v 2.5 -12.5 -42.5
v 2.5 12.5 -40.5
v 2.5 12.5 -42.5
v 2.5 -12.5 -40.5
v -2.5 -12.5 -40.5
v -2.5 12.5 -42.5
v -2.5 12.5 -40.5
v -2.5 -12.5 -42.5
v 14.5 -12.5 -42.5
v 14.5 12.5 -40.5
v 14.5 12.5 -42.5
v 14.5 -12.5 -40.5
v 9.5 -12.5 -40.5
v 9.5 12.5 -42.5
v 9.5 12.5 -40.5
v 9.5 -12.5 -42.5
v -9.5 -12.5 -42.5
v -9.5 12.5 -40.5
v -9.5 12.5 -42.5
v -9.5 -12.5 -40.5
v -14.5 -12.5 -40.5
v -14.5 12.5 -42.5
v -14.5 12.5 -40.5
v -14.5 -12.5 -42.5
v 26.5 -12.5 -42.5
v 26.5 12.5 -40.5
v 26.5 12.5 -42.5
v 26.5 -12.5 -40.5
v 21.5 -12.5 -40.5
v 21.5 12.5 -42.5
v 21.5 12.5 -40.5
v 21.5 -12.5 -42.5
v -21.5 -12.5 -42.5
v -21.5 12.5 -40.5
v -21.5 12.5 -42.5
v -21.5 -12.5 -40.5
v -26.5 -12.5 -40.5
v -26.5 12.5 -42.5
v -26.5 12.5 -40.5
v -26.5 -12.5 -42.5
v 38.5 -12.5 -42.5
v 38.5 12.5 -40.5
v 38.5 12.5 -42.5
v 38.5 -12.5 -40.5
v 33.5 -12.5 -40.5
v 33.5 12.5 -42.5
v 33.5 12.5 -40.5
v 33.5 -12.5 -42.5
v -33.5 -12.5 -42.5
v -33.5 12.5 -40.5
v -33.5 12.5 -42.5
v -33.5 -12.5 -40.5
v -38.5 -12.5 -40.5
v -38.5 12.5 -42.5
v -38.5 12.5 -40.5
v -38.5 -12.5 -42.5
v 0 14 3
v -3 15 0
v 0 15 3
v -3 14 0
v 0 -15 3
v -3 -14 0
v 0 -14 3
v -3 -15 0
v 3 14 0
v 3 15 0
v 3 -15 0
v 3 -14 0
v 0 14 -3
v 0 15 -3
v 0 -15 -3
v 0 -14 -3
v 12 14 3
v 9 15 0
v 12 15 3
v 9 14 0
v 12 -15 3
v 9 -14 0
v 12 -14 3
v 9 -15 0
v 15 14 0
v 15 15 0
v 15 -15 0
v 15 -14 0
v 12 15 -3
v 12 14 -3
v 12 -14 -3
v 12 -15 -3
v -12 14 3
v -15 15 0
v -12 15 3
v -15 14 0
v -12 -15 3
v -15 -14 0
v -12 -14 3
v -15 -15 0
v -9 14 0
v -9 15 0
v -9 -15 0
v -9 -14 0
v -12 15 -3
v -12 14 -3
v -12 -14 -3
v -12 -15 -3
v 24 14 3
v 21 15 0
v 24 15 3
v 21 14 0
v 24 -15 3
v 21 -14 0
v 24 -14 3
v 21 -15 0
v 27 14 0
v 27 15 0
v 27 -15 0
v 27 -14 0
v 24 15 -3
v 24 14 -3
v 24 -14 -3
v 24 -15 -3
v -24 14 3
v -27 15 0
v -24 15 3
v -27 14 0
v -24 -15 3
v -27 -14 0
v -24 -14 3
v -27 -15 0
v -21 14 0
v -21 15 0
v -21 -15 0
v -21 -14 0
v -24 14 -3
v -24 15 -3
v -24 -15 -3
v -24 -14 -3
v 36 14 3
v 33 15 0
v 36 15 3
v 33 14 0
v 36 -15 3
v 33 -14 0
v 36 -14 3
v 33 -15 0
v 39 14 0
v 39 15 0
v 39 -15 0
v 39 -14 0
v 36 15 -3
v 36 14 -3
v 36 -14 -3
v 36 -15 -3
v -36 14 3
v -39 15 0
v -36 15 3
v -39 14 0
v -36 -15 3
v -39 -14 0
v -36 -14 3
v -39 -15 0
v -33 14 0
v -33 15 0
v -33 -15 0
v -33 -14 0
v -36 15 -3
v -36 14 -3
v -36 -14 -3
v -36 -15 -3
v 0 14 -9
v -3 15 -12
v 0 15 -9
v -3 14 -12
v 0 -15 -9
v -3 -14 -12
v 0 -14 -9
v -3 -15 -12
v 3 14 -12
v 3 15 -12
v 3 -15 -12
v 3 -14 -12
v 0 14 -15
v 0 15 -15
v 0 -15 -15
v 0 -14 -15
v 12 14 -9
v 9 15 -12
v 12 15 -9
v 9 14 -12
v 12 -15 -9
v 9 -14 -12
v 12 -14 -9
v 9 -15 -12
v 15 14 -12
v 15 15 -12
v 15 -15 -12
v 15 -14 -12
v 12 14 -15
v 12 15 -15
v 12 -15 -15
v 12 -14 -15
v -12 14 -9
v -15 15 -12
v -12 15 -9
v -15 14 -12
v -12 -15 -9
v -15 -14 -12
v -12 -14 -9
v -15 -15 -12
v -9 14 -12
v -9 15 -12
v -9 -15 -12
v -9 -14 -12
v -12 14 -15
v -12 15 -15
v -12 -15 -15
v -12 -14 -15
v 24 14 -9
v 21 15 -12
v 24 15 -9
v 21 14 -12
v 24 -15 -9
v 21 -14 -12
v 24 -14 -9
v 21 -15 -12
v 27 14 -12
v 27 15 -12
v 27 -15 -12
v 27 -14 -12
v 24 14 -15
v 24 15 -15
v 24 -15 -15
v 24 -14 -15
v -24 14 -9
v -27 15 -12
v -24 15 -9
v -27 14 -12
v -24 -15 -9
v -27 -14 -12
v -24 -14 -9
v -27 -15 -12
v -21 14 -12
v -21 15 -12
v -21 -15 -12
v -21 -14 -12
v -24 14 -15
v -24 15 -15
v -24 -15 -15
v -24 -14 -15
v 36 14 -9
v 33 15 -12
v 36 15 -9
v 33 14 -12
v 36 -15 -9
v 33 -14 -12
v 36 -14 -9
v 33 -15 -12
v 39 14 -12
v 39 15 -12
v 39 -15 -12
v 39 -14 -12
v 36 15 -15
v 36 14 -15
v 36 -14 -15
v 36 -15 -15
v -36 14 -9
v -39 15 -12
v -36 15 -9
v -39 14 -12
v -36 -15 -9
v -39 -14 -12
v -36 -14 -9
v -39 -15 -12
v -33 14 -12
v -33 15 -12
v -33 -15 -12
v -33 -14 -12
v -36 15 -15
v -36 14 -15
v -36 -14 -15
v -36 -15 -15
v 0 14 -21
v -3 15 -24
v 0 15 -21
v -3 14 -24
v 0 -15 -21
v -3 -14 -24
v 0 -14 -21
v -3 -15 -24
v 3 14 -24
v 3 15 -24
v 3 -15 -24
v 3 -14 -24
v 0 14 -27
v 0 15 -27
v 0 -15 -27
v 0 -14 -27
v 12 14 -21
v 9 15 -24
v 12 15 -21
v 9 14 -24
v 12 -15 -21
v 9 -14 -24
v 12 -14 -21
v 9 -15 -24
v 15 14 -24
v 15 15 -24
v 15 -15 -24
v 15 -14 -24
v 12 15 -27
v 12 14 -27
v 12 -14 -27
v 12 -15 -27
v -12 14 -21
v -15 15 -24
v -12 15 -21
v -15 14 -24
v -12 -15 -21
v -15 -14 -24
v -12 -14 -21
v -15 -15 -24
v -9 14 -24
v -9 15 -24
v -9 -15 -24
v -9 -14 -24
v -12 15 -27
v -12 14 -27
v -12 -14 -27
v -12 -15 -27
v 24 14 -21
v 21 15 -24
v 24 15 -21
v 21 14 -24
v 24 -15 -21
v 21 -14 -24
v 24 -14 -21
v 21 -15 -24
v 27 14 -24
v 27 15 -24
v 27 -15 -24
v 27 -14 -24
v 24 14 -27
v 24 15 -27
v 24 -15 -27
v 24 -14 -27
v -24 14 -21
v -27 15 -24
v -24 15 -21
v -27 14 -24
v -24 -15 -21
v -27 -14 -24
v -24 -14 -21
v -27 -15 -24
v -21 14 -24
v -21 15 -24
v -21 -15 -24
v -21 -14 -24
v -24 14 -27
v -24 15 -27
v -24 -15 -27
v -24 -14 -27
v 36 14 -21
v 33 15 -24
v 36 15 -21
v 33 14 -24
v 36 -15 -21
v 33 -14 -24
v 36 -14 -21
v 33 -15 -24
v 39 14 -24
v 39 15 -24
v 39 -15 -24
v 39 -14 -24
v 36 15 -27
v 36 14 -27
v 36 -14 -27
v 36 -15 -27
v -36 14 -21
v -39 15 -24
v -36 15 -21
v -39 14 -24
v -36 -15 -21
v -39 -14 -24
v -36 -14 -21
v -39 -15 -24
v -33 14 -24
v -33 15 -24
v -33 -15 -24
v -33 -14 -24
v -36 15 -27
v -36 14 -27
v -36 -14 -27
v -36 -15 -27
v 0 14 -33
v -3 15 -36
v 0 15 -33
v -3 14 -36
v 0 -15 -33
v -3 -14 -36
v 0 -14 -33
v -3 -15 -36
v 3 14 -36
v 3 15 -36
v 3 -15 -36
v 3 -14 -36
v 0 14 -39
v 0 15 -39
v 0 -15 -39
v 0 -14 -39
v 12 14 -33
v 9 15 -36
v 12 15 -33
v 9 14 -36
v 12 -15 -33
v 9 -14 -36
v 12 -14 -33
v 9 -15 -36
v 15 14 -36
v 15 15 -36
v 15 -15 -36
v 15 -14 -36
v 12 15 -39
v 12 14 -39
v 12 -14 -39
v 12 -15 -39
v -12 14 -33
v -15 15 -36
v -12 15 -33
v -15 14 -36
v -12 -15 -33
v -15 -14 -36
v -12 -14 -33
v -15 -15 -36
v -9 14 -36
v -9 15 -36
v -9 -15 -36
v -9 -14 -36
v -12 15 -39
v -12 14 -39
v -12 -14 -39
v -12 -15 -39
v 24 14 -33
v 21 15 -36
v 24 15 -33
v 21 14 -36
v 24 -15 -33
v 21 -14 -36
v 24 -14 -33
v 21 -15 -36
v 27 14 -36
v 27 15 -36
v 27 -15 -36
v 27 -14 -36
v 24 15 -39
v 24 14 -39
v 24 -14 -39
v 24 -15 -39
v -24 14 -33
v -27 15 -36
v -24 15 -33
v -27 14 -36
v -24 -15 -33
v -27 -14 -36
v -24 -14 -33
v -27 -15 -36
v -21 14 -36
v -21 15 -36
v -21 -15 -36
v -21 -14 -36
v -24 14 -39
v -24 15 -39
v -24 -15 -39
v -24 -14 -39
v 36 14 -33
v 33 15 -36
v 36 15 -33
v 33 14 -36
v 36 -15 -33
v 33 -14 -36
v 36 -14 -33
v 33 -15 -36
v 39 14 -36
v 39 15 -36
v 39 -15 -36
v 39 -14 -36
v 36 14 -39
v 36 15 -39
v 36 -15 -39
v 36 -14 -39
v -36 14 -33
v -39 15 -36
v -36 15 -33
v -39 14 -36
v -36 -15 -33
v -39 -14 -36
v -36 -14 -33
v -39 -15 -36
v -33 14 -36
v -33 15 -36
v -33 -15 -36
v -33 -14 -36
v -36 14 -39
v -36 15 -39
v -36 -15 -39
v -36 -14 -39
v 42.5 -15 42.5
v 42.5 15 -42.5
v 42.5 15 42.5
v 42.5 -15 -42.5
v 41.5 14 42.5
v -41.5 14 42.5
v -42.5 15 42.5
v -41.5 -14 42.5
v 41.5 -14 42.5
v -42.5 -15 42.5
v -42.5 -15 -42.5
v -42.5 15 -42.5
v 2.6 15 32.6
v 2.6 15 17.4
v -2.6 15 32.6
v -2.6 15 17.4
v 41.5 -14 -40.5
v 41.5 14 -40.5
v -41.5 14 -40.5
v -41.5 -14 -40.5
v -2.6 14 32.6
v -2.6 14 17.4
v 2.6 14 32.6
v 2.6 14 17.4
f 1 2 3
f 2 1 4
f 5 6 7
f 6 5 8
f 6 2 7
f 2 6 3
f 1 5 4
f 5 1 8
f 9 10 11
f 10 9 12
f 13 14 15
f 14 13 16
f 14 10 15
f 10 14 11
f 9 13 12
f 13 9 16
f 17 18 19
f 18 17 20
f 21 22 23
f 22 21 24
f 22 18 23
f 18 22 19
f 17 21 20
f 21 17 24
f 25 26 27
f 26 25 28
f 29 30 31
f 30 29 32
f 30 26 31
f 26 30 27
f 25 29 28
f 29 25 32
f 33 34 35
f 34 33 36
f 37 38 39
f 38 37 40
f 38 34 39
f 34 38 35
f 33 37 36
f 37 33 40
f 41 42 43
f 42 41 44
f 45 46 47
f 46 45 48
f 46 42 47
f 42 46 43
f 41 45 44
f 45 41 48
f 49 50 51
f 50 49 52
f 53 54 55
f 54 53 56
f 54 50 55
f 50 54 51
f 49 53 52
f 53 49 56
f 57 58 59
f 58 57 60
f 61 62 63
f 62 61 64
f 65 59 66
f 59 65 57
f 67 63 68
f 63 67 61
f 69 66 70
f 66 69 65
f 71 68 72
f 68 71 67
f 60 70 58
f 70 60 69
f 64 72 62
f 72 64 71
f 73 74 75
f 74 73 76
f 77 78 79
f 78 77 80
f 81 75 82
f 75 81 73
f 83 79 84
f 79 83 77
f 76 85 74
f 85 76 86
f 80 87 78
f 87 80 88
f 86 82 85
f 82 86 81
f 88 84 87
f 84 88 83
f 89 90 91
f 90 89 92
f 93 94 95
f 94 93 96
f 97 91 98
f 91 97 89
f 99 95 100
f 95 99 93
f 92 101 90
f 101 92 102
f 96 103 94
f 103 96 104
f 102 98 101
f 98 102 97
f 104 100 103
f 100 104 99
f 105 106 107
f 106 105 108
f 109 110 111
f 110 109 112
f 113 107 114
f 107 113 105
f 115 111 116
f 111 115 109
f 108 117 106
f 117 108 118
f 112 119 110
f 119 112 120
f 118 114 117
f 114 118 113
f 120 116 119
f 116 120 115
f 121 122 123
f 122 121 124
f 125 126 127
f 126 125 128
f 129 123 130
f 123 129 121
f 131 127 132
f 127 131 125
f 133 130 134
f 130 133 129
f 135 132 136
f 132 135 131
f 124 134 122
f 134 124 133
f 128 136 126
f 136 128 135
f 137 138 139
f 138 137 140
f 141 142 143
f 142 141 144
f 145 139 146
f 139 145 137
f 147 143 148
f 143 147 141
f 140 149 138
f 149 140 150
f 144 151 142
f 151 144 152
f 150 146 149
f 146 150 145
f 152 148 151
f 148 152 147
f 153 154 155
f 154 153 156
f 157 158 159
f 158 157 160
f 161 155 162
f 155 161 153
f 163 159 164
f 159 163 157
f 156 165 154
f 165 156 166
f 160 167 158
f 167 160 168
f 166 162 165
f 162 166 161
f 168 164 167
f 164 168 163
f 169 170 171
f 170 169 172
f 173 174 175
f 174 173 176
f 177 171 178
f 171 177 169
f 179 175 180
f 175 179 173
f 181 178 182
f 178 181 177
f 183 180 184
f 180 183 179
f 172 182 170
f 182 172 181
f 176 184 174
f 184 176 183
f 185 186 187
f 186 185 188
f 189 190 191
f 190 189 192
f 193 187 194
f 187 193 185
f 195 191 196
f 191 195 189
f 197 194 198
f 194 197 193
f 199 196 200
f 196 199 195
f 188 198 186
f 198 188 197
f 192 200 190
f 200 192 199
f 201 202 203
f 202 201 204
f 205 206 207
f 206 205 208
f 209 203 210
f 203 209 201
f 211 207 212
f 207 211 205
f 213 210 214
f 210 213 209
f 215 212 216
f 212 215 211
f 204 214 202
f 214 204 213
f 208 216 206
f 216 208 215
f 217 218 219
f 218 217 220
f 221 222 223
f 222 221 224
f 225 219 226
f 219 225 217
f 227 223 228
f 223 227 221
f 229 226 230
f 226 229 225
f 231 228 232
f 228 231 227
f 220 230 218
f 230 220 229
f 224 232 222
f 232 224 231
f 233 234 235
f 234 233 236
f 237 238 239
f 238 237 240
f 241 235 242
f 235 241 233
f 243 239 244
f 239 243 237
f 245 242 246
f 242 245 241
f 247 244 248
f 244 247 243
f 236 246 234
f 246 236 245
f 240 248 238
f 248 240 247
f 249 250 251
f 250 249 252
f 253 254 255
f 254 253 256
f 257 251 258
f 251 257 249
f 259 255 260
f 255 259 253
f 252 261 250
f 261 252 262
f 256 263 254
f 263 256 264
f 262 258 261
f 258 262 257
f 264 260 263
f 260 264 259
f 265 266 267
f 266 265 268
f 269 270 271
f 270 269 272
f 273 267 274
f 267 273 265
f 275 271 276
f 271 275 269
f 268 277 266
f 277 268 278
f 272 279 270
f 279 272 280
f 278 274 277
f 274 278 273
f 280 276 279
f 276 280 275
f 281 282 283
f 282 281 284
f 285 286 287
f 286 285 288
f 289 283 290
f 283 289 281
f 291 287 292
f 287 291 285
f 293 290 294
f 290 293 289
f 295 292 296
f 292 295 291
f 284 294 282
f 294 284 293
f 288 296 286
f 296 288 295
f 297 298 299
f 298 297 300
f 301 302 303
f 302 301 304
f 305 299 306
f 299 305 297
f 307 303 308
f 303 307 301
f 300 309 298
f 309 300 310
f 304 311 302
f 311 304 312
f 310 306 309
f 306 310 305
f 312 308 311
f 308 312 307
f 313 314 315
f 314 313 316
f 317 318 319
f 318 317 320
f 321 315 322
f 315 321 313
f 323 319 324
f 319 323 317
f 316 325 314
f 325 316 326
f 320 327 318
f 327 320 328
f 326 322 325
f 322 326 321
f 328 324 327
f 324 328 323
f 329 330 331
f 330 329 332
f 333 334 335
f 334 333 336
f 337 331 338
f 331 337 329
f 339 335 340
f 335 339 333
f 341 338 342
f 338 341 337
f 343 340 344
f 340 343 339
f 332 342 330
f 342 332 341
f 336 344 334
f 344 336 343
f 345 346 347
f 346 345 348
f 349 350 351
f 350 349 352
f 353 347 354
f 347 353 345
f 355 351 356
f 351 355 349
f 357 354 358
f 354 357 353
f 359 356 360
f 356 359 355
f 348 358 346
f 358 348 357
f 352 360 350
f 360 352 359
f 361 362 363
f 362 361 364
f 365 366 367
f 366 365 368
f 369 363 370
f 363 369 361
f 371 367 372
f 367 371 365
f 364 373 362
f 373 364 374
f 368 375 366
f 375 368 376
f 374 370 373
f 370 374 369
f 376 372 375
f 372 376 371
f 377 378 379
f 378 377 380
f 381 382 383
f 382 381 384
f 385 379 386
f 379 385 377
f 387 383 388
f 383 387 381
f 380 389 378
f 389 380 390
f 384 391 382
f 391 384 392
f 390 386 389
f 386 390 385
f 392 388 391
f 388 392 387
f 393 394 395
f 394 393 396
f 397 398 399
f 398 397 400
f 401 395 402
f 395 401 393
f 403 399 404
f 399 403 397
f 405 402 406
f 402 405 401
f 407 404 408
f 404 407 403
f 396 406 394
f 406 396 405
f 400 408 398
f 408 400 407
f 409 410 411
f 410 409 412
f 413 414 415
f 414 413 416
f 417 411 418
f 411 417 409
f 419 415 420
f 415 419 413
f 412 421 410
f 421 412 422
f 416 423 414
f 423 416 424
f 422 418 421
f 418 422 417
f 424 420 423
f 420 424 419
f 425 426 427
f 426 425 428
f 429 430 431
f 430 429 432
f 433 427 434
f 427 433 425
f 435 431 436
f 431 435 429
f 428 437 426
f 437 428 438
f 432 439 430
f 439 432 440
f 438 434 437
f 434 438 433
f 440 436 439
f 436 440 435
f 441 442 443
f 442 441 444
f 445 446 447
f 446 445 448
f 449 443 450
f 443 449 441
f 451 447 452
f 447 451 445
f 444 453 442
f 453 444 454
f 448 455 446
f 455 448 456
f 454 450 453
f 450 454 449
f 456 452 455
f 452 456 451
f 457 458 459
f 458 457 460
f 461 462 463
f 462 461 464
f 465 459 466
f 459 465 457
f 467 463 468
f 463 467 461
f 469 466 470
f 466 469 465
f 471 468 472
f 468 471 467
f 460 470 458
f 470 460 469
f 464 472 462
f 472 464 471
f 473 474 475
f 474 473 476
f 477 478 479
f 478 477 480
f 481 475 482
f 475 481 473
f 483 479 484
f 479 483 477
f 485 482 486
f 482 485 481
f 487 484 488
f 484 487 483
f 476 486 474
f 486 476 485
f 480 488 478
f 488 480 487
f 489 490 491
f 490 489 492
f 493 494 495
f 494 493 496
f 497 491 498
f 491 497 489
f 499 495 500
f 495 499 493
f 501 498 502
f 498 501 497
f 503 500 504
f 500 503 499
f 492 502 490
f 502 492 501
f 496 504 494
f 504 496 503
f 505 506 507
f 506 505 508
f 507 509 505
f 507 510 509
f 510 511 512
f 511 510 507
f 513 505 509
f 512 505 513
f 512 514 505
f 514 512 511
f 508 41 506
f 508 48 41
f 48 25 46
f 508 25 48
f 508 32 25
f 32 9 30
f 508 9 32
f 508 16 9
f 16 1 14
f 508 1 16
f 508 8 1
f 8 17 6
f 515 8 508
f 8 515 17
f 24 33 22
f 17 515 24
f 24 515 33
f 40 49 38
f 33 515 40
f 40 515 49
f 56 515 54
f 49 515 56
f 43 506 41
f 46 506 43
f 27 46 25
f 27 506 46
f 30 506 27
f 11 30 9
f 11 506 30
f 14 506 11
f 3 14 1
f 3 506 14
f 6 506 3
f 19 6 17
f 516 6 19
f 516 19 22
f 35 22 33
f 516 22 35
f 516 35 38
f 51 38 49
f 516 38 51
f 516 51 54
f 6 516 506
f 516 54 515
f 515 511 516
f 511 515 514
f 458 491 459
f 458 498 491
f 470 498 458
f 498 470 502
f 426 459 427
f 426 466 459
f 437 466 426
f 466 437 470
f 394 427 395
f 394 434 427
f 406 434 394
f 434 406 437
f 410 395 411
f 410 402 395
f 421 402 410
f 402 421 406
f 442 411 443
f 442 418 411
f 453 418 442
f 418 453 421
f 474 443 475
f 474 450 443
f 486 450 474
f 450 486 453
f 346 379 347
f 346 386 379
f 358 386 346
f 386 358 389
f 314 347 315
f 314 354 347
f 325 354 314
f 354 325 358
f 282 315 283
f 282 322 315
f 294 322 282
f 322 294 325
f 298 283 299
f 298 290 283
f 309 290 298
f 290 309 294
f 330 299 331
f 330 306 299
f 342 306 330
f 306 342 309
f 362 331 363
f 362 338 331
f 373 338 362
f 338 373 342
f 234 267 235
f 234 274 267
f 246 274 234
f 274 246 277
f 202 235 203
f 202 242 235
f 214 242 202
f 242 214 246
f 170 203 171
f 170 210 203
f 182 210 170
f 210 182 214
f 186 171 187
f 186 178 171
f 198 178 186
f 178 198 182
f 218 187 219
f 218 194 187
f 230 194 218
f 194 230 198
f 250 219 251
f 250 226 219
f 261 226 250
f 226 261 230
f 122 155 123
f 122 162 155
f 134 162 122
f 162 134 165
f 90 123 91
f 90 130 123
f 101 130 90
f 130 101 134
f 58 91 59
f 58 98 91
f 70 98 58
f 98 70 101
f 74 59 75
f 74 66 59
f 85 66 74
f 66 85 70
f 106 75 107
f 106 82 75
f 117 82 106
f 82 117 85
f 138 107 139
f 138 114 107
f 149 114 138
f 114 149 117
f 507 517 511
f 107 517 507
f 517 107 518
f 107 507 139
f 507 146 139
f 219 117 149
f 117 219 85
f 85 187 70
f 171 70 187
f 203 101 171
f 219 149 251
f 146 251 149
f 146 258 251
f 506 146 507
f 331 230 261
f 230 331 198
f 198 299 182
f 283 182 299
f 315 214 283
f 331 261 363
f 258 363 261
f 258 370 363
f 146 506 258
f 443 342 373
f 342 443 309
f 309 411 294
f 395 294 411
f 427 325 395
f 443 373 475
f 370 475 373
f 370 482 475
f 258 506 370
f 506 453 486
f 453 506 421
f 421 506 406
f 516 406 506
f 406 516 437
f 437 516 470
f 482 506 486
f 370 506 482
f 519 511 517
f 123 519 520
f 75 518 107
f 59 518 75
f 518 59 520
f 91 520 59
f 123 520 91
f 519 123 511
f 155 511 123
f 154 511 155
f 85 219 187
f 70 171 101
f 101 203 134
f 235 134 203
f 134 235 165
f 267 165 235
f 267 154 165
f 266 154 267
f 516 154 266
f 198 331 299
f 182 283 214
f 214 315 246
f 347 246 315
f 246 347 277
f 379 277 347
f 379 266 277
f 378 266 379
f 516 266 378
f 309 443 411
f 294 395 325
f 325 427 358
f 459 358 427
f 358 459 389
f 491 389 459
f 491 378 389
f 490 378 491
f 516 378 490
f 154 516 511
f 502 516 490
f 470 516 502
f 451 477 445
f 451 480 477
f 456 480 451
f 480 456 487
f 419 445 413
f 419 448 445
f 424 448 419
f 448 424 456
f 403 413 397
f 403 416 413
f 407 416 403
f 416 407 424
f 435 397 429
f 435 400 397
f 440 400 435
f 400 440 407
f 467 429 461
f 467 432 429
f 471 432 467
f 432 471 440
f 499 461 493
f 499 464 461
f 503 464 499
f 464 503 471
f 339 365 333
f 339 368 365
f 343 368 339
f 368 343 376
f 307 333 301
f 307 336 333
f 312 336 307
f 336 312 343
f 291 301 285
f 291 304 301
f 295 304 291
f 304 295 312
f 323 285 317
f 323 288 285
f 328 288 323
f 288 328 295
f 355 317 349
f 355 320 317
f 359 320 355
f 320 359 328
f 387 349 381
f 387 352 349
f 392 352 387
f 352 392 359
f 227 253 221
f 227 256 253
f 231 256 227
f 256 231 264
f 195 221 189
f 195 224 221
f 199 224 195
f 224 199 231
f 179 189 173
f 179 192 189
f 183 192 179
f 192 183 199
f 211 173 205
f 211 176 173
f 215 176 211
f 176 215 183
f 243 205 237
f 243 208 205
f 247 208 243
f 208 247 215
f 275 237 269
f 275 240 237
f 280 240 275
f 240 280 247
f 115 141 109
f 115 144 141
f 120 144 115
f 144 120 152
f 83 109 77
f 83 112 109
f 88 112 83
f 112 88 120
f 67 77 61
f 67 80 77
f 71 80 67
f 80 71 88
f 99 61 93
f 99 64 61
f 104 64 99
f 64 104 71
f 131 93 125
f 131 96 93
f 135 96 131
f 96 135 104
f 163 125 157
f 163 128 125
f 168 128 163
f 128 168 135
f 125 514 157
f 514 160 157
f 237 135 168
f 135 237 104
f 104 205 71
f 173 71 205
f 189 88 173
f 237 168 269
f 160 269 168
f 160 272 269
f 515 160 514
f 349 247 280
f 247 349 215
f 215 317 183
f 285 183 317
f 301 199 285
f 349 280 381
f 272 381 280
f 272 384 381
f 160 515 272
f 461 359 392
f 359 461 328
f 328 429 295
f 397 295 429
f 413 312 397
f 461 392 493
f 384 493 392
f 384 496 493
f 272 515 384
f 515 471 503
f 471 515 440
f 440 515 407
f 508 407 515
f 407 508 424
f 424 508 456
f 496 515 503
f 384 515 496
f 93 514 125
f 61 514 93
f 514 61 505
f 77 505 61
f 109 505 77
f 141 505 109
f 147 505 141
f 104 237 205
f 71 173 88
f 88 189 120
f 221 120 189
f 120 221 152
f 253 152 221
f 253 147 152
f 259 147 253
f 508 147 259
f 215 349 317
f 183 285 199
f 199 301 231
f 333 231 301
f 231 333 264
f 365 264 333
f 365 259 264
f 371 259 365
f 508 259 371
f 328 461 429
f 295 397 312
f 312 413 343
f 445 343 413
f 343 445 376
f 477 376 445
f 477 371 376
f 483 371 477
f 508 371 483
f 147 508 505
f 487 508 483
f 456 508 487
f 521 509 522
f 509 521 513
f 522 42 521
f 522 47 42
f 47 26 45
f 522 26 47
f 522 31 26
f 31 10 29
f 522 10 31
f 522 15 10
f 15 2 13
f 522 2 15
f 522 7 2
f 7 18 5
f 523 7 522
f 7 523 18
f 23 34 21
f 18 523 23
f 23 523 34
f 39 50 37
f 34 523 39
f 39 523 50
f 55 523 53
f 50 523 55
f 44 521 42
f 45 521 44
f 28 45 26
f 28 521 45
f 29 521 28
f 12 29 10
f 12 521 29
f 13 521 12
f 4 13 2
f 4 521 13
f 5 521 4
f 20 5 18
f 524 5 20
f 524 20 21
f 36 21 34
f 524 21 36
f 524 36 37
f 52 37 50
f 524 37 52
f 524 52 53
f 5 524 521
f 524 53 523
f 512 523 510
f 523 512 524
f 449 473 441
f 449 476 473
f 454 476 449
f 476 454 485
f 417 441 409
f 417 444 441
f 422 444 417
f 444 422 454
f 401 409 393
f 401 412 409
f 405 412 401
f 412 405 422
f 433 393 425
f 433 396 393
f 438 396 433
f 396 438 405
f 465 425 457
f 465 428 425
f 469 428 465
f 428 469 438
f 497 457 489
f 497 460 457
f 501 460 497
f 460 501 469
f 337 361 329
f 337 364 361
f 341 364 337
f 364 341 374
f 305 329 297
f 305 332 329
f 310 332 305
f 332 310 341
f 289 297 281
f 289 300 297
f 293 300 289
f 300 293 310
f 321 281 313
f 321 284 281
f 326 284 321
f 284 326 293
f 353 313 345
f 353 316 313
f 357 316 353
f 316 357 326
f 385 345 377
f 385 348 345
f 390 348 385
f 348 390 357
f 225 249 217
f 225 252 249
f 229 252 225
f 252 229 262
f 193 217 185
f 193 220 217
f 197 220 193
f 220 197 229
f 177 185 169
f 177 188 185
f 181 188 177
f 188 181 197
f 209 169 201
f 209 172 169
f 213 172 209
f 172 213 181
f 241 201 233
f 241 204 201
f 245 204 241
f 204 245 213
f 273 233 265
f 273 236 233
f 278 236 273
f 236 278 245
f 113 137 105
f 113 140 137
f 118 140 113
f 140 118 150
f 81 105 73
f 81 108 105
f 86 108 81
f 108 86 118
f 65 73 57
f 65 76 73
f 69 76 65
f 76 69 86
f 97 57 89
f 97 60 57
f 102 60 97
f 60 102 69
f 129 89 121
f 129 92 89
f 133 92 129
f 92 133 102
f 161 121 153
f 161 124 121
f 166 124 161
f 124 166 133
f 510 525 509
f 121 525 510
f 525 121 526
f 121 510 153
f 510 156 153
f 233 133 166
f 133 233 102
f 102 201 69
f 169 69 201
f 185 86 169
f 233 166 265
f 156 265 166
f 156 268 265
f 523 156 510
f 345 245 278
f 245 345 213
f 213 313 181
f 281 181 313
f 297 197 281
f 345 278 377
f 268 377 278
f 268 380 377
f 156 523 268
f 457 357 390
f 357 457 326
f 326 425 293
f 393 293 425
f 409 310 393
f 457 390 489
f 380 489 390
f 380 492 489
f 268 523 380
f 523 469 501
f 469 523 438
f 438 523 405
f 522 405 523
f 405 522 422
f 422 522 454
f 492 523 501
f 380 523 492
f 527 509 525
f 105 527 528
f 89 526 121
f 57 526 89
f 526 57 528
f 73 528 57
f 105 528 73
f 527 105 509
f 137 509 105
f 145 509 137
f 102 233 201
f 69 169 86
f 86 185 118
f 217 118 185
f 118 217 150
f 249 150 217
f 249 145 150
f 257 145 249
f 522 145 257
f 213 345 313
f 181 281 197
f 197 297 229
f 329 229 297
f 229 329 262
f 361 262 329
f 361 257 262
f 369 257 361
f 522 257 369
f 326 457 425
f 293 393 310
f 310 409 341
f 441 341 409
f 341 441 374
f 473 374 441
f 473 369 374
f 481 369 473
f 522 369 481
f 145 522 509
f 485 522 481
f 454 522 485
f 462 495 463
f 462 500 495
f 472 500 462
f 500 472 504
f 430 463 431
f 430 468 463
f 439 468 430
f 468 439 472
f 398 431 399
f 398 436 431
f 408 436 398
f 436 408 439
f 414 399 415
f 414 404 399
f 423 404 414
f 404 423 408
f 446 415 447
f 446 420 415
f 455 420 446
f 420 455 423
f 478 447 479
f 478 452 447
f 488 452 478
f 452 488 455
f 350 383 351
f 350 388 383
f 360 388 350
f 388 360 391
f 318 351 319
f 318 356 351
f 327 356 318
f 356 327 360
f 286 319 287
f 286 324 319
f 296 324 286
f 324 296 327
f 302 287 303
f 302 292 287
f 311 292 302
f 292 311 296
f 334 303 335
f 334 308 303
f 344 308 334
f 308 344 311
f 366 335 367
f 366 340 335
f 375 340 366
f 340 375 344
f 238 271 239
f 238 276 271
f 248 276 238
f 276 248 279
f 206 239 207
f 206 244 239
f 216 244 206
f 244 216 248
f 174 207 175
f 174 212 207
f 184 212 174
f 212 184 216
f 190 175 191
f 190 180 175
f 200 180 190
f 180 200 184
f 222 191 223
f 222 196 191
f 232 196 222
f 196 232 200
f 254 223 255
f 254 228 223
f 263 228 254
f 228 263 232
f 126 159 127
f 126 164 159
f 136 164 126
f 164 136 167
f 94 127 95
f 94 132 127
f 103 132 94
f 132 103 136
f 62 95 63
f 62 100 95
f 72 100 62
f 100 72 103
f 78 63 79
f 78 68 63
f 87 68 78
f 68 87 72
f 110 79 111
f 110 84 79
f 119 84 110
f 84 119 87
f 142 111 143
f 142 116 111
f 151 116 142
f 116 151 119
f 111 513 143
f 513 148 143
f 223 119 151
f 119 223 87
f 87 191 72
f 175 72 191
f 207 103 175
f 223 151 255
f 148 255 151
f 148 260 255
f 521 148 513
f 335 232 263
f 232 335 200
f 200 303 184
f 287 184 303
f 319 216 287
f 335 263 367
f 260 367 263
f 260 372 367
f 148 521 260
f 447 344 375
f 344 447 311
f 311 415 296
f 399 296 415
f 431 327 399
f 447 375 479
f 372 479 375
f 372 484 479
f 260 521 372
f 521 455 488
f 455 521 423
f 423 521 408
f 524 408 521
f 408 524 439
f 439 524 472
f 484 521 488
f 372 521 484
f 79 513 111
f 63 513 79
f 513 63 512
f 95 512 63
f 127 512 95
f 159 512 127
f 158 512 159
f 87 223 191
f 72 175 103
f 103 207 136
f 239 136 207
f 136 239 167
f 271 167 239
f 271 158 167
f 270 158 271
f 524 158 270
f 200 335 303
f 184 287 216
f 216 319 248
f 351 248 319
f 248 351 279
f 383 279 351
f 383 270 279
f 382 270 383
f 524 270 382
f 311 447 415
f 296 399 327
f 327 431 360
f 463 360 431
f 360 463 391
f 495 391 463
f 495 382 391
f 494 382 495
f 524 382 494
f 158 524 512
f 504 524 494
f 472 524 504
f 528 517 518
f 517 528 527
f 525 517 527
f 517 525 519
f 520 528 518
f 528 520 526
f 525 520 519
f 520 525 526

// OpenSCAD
cube_bowl();

module cube_bowl() {
    difference(){
        cube([85,30,85], center=true);
        translate([0,0,2]) cube([85-2,30-2,85-2+2], center=true);
        for(i=[0:12:80/2]) {
            translate([i,0,0]) cube([5,25,100], center=true);
            translate([-i,0,0]) cube([5,25,100], center=true);
        }
        translate([0,15,50/2]) cube([5+0.2,10,15+0.2], center=true);
        
        for(y=[0:12:80/2]) {
            for(x=[0:12:80/2]) {
                translate([x,0,0-y]) rotate([90,0,0]) cylinder(50,3,3,center=true,$fn=4);
                translate([-x,0,-y]) rotate([90,0,0]) cylinder(50,3,3,center=true,$fn=4);
            }
        }
    }
    
}
